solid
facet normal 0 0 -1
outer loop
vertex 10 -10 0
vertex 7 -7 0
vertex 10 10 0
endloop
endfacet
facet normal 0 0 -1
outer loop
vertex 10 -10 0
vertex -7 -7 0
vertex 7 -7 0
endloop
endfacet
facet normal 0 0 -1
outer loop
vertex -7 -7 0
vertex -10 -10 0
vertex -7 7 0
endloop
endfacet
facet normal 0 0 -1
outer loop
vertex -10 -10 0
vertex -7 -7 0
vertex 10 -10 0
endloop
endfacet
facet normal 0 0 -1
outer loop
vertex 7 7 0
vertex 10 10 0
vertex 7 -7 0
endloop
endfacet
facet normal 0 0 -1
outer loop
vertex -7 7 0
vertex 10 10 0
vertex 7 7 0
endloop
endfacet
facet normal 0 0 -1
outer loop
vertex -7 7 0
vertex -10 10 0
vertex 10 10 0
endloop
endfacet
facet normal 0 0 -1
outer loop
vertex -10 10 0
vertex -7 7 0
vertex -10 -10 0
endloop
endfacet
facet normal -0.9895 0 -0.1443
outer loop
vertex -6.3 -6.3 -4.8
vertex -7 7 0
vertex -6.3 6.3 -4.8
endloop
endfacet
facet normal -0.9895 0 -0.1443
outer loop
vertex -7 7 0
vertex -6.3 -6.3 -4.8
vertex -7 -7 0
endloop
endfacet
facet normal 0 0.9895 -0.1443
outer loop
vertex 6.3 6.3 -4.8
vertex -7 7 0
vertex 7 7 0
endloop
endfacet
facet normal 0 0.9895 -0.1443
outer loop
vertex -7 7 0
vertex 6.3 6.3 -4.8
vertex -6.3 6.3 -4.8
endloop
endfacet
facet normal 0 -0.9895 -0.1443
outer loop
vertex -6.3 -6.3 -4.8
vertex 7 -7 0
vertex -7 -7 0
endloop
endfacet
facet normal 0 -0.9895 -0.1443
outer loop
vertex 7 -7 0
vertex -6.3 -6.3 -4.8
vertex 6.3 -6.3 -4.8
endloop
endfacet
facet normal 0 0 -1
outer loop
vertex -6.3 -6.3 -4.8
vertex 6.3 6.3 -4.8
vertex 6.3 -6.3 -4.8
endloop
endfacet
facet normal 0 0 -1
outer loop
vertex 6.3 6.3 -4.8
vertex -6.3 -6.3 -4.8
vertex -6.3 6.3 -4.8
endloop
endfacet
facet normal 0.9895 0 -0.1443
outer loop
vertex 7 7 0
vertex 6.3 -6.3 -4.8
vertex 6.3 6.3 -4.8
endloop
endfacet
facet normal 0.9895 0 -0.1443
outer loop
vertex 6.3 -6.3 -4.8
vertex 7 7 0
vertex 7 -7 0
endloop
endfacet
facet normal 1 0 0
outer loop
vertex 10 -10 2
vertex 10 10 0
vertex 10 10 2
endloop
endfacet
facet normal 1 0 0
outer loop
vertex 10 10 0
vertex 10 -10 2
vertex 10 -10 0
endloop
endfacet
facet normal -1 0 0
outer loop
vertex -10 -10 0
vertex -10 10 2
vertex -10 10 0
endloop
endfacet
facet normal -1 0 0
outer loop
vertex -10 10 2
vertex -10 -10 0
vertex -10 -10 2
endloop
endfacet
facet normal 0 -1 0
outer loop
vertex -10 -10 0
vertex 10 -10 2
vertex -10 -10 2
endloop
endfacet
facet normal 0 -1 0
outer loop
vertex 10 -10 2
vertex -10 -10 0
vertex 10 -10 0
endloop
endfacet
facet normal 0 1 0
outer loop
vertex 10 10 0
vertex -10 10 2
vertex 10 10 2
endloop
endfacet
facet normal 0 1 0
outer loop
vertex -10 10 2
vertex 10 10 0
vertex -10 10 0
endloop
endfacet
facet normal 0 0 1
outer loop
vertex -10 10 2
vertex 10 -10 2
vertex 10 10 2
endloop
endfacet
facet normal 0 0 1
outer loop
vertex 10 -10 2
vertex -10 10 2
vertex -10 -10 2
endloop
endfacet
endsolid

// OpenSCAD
descenderDepth = 4.8;
descenderWidth = 14;
topWidth = 20;
topThickness = 2;

color("green")
    rotate([180, 0, 0])
        linear_extrude(0, 0, descenderDepth, scale = 0.9)
            square(descenderWidth, center = true);
color("cyan")
    linear_extrude(0, 0, topThickness)
        square(topWidth, center = true);
